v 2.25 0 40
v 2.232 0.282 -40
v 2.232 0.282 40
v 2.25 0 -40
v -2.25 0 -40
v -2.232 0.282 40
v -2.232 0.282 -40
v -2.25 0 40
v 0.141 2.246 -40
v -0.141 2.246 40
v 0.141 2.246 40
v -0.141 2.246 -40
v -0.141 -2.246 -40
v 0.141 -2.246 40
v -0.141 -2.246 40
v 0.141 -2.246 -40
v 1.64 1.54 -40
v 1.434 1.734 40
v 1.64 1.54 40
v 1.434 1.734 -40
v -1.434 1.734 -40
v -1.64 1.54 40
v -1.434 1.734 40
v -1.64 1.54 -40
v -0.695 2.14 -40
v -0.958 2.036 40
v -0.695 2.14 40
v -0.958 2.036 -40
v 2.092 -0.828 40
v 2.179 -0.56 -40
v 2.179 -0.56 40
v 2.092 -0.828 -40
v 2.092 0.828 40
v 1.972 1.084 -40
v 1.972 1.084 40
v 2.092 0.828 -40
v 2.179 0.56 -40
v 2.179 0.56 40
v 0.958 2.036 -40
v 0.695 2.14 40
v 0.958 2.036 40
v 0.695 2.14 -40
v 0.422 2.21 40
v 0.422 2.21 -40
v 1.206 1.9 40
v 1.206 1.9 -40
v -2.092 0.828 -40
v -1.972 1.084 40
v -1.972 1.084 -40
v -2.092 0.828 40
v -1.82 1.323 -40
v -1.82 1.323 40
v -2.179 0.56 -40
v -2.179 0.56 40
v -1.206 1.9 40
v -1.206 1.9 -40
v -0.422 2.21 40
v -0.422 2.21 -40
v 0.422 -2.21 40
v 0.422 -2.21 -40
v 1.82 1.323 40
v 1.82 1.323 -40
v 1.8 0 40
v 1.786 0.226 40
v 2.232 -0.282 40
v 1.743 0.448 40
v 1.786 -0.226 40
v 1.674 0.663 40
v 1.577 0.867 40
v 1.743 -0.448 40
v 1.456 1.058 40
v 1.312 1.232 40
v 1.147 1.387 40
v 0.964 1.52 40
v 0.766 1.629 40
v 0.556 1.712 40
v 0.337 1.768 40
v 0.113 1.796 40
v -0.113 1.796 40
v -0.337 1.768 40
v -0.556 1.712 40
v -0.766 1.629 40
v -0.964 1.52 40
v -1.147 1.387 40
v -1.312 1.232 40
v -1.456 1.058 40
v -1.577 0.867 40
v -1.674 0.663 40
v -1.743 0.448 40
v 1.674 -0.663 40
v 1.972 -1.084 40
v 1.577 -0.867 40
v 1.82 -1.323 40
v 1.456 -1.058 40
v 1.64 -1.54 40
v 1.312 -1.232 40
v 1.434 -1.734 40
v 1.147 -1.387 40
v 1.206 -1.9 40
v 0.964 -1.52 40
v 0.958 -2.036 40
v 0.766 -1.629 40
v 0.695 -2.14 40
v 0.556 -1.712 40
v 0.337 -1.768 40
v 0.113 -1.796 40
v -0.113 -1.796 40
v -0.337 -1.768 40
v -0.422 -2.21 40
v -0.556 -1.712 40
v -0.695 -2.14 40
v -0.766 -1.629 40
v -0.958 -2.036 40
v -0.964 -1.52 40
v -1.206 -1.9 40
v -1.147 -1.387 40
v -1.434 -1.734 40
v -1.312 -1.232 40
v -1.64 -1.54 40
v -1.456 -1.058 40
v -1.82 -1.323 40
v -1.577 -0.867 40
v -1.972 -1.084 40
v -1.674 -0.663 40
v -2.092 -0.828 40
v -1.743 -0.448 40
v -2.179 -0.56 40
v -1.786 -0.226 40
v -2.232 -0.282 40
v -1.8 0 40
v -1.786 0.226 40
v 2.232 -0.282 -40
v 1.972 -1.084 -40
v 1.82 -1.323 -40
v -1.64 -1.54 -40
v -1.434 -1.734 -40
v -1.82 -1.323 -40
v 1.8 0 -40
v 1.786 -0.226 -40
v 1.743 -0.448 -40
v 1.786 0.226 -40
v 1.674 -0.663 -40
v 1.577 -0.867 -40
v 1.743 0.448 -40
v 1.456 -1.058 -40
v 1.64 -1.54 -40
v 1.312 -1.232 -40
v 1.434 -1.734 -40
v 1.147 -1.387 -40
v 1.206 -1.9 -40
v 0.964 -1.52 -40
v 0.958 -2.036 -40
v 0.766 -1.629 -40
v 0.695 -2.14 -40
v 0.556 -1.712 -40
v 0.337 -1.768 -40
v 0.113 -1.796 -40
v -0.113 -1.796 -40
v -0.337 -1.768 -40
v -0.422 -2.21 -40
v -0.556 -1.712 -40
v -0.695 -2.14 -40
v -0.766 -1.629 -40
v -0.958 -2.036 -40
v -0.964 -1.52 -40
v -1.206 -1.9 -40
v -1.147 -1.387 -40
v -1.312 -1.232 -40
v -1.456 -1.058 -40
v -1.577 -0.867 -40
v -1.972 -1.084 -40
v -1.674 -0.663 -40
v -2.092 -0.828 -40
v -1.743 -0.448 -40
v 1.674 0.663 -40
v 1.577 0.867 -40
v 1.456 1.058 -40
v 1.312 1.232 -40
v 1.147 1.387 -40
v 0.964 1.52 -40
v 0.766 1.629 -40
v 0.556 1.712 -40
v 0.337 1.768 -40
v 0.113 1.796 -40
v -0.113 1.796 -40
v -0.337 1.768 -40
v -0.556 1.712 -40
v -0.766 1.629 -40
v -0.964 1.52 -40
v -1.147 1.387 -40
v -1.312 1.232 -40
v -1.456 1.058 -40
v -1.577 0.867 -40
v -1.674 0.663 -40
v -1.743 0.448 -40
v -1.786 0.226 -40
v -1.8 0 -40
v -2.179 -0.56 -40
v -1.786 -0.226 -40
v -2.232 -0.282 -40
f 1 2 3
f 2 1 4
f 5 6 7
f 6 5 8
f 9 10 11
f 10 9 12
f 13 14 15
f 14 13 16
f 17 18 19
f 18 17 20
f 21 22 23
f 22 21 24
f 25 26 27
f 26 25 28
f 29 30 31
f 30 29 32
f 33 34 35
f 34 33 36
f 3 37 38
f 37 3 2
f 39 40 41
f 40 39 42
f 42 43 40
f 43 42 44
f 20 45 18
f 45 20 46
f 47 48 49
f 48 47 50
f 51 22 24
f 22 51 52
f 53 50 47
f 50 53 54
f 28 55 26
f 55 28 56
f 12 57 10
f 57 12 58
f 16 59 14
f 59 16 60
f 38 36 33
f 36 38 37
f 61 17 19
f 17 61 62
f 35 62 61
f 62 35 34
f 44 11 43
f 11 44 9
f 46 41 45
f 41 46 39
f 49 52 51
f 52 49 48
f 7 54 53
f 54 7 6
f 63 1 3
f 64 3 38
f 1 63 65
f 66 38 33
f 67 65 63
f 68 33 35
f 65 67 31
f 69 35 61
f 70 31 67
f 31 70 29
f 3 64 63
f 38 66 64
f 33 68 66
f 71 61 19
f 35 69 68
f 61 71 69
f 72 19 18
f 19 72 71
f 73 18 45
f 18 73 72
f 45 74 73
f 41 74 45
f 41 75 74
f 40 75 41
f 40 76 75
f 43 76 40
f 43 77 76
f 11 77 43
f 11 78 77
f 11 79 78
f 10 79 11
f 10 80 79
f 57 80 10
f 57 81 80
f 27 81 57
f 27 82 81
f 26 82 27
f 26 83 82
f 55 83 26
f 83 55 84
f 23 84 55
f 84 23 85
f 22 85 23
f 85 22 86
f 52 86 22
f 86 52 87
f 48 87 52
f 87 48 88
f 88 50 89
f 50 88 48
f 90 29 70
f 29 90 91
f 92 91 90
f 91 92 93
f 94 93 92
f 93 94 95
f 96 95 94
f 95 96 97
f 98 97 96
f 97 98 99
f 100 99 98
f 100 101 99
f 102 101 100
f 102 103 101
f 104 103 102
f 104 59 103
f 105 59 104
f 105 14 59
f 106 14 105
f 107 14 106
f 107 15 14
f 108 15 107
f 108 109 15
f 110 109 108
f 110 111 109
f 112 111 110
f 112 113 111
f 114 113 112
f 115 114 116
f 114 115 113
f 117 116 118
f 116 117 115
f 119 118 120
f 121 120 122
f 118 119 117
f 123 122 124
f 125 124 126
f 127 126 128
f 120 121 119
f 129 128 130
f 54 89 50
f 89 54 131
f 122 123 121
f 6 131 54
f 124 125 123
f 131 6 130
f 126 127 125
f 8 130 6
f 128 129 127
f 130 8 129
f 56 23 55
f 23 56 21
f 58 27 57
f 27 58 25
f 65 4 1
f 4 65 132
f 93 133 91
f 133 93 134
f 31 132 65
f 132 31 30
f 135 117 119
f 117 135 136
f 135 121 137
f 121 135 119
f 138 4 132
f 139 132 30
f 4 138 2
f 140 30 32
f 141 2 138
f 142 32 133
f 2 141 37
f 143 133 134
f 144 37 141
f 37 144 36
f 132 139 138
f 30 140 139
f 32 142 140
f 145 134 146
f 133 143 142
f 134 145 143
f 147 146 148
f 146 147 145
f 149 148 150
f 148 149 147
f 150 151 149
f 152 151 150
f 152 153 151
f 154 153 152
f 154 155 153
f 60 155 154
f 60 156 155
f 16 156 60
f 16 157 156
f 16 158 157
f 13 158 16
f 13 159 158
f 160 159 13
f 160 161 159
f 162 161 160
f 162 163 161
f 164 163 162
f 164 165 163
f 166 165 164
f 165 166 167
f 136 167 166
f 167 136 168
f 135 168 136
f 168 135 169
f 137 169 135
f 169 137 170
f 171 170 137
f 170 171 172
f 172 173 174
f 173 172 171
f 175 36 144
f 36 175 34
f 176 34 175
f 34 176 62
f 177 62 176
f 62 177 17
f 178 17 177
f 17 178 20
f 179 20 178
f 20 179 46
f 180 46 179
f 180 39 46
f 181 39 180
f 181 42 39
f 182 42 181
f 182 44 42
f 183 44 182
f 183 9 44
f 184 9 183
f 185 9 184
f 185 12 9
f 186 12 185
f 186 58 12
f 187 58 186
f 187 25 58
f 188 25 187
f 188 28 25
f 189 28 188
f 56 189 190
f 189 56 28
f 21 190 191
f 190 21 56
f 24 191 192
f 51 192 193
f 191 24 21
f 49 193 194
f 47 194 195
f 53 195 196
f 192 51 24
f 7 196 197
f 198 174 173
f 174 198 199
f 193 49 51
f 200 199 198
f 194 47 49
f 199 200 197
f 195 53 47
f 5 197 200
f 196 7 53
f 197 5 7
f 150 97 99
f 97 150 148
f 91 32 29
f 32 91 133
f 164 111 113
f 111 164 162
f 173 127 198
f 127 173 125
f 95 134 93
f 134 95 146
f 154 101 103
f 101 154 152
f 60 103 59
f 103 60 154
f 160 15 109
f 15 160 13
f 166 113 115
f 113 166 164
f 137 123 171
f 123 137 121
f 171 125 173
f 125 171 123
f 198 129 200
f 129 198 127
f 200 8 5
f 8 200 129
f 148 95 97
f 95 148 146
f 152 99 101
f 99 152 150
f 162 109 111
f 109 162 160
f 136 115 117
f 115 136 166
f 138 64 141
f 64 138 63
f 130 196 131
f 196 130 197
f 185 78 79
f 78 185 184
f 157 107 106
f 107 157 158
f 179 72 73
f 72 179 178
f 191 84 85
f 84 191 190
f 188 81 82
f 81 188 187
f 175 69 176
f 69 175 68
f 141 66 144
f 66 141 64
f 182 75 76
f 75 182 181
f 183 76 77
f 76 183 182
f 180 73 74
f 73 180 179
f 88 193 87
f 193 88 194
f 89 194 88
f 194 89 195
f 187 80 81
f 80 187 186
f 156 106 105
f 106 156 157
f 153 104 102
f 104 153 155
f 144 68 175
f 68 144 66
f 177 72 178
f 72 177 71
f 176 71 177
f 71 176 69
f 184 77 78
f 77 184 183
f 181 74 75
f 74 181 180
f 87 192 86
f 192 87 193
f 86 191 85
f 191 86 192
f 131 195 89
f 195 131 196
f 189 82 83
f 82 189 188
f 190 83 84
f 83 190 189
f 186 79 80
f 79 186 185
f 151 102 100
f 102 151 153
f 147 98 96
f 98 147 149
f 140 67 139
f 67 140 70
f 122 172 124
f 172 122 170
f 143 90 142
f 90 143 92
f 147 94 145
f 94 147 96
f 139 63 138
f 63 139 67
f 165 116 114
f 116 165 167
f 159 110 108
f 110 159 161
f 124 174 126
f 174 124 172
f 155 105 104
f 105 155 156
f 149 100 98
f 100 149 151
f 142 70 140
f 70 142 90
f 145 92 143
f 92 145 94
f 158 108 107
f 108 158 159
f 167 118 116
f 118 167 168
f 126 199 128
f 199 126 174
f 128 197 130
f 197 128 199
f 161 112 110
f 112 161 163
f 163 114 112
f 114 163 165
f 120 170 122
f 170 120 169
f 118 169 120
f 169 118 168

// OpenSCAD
$fn = 50;


difference() {
	union() {
		translate(v = [0, 0, -40.0000000000]) {
			cylinder(h = 80, r = 2.2500000000);
		}
	}
	union() {
		translate(v = [0, 0, -100.0000000000]) {
			cylinder(h = 200, r = 1.8000000000);
		}
	}
}
